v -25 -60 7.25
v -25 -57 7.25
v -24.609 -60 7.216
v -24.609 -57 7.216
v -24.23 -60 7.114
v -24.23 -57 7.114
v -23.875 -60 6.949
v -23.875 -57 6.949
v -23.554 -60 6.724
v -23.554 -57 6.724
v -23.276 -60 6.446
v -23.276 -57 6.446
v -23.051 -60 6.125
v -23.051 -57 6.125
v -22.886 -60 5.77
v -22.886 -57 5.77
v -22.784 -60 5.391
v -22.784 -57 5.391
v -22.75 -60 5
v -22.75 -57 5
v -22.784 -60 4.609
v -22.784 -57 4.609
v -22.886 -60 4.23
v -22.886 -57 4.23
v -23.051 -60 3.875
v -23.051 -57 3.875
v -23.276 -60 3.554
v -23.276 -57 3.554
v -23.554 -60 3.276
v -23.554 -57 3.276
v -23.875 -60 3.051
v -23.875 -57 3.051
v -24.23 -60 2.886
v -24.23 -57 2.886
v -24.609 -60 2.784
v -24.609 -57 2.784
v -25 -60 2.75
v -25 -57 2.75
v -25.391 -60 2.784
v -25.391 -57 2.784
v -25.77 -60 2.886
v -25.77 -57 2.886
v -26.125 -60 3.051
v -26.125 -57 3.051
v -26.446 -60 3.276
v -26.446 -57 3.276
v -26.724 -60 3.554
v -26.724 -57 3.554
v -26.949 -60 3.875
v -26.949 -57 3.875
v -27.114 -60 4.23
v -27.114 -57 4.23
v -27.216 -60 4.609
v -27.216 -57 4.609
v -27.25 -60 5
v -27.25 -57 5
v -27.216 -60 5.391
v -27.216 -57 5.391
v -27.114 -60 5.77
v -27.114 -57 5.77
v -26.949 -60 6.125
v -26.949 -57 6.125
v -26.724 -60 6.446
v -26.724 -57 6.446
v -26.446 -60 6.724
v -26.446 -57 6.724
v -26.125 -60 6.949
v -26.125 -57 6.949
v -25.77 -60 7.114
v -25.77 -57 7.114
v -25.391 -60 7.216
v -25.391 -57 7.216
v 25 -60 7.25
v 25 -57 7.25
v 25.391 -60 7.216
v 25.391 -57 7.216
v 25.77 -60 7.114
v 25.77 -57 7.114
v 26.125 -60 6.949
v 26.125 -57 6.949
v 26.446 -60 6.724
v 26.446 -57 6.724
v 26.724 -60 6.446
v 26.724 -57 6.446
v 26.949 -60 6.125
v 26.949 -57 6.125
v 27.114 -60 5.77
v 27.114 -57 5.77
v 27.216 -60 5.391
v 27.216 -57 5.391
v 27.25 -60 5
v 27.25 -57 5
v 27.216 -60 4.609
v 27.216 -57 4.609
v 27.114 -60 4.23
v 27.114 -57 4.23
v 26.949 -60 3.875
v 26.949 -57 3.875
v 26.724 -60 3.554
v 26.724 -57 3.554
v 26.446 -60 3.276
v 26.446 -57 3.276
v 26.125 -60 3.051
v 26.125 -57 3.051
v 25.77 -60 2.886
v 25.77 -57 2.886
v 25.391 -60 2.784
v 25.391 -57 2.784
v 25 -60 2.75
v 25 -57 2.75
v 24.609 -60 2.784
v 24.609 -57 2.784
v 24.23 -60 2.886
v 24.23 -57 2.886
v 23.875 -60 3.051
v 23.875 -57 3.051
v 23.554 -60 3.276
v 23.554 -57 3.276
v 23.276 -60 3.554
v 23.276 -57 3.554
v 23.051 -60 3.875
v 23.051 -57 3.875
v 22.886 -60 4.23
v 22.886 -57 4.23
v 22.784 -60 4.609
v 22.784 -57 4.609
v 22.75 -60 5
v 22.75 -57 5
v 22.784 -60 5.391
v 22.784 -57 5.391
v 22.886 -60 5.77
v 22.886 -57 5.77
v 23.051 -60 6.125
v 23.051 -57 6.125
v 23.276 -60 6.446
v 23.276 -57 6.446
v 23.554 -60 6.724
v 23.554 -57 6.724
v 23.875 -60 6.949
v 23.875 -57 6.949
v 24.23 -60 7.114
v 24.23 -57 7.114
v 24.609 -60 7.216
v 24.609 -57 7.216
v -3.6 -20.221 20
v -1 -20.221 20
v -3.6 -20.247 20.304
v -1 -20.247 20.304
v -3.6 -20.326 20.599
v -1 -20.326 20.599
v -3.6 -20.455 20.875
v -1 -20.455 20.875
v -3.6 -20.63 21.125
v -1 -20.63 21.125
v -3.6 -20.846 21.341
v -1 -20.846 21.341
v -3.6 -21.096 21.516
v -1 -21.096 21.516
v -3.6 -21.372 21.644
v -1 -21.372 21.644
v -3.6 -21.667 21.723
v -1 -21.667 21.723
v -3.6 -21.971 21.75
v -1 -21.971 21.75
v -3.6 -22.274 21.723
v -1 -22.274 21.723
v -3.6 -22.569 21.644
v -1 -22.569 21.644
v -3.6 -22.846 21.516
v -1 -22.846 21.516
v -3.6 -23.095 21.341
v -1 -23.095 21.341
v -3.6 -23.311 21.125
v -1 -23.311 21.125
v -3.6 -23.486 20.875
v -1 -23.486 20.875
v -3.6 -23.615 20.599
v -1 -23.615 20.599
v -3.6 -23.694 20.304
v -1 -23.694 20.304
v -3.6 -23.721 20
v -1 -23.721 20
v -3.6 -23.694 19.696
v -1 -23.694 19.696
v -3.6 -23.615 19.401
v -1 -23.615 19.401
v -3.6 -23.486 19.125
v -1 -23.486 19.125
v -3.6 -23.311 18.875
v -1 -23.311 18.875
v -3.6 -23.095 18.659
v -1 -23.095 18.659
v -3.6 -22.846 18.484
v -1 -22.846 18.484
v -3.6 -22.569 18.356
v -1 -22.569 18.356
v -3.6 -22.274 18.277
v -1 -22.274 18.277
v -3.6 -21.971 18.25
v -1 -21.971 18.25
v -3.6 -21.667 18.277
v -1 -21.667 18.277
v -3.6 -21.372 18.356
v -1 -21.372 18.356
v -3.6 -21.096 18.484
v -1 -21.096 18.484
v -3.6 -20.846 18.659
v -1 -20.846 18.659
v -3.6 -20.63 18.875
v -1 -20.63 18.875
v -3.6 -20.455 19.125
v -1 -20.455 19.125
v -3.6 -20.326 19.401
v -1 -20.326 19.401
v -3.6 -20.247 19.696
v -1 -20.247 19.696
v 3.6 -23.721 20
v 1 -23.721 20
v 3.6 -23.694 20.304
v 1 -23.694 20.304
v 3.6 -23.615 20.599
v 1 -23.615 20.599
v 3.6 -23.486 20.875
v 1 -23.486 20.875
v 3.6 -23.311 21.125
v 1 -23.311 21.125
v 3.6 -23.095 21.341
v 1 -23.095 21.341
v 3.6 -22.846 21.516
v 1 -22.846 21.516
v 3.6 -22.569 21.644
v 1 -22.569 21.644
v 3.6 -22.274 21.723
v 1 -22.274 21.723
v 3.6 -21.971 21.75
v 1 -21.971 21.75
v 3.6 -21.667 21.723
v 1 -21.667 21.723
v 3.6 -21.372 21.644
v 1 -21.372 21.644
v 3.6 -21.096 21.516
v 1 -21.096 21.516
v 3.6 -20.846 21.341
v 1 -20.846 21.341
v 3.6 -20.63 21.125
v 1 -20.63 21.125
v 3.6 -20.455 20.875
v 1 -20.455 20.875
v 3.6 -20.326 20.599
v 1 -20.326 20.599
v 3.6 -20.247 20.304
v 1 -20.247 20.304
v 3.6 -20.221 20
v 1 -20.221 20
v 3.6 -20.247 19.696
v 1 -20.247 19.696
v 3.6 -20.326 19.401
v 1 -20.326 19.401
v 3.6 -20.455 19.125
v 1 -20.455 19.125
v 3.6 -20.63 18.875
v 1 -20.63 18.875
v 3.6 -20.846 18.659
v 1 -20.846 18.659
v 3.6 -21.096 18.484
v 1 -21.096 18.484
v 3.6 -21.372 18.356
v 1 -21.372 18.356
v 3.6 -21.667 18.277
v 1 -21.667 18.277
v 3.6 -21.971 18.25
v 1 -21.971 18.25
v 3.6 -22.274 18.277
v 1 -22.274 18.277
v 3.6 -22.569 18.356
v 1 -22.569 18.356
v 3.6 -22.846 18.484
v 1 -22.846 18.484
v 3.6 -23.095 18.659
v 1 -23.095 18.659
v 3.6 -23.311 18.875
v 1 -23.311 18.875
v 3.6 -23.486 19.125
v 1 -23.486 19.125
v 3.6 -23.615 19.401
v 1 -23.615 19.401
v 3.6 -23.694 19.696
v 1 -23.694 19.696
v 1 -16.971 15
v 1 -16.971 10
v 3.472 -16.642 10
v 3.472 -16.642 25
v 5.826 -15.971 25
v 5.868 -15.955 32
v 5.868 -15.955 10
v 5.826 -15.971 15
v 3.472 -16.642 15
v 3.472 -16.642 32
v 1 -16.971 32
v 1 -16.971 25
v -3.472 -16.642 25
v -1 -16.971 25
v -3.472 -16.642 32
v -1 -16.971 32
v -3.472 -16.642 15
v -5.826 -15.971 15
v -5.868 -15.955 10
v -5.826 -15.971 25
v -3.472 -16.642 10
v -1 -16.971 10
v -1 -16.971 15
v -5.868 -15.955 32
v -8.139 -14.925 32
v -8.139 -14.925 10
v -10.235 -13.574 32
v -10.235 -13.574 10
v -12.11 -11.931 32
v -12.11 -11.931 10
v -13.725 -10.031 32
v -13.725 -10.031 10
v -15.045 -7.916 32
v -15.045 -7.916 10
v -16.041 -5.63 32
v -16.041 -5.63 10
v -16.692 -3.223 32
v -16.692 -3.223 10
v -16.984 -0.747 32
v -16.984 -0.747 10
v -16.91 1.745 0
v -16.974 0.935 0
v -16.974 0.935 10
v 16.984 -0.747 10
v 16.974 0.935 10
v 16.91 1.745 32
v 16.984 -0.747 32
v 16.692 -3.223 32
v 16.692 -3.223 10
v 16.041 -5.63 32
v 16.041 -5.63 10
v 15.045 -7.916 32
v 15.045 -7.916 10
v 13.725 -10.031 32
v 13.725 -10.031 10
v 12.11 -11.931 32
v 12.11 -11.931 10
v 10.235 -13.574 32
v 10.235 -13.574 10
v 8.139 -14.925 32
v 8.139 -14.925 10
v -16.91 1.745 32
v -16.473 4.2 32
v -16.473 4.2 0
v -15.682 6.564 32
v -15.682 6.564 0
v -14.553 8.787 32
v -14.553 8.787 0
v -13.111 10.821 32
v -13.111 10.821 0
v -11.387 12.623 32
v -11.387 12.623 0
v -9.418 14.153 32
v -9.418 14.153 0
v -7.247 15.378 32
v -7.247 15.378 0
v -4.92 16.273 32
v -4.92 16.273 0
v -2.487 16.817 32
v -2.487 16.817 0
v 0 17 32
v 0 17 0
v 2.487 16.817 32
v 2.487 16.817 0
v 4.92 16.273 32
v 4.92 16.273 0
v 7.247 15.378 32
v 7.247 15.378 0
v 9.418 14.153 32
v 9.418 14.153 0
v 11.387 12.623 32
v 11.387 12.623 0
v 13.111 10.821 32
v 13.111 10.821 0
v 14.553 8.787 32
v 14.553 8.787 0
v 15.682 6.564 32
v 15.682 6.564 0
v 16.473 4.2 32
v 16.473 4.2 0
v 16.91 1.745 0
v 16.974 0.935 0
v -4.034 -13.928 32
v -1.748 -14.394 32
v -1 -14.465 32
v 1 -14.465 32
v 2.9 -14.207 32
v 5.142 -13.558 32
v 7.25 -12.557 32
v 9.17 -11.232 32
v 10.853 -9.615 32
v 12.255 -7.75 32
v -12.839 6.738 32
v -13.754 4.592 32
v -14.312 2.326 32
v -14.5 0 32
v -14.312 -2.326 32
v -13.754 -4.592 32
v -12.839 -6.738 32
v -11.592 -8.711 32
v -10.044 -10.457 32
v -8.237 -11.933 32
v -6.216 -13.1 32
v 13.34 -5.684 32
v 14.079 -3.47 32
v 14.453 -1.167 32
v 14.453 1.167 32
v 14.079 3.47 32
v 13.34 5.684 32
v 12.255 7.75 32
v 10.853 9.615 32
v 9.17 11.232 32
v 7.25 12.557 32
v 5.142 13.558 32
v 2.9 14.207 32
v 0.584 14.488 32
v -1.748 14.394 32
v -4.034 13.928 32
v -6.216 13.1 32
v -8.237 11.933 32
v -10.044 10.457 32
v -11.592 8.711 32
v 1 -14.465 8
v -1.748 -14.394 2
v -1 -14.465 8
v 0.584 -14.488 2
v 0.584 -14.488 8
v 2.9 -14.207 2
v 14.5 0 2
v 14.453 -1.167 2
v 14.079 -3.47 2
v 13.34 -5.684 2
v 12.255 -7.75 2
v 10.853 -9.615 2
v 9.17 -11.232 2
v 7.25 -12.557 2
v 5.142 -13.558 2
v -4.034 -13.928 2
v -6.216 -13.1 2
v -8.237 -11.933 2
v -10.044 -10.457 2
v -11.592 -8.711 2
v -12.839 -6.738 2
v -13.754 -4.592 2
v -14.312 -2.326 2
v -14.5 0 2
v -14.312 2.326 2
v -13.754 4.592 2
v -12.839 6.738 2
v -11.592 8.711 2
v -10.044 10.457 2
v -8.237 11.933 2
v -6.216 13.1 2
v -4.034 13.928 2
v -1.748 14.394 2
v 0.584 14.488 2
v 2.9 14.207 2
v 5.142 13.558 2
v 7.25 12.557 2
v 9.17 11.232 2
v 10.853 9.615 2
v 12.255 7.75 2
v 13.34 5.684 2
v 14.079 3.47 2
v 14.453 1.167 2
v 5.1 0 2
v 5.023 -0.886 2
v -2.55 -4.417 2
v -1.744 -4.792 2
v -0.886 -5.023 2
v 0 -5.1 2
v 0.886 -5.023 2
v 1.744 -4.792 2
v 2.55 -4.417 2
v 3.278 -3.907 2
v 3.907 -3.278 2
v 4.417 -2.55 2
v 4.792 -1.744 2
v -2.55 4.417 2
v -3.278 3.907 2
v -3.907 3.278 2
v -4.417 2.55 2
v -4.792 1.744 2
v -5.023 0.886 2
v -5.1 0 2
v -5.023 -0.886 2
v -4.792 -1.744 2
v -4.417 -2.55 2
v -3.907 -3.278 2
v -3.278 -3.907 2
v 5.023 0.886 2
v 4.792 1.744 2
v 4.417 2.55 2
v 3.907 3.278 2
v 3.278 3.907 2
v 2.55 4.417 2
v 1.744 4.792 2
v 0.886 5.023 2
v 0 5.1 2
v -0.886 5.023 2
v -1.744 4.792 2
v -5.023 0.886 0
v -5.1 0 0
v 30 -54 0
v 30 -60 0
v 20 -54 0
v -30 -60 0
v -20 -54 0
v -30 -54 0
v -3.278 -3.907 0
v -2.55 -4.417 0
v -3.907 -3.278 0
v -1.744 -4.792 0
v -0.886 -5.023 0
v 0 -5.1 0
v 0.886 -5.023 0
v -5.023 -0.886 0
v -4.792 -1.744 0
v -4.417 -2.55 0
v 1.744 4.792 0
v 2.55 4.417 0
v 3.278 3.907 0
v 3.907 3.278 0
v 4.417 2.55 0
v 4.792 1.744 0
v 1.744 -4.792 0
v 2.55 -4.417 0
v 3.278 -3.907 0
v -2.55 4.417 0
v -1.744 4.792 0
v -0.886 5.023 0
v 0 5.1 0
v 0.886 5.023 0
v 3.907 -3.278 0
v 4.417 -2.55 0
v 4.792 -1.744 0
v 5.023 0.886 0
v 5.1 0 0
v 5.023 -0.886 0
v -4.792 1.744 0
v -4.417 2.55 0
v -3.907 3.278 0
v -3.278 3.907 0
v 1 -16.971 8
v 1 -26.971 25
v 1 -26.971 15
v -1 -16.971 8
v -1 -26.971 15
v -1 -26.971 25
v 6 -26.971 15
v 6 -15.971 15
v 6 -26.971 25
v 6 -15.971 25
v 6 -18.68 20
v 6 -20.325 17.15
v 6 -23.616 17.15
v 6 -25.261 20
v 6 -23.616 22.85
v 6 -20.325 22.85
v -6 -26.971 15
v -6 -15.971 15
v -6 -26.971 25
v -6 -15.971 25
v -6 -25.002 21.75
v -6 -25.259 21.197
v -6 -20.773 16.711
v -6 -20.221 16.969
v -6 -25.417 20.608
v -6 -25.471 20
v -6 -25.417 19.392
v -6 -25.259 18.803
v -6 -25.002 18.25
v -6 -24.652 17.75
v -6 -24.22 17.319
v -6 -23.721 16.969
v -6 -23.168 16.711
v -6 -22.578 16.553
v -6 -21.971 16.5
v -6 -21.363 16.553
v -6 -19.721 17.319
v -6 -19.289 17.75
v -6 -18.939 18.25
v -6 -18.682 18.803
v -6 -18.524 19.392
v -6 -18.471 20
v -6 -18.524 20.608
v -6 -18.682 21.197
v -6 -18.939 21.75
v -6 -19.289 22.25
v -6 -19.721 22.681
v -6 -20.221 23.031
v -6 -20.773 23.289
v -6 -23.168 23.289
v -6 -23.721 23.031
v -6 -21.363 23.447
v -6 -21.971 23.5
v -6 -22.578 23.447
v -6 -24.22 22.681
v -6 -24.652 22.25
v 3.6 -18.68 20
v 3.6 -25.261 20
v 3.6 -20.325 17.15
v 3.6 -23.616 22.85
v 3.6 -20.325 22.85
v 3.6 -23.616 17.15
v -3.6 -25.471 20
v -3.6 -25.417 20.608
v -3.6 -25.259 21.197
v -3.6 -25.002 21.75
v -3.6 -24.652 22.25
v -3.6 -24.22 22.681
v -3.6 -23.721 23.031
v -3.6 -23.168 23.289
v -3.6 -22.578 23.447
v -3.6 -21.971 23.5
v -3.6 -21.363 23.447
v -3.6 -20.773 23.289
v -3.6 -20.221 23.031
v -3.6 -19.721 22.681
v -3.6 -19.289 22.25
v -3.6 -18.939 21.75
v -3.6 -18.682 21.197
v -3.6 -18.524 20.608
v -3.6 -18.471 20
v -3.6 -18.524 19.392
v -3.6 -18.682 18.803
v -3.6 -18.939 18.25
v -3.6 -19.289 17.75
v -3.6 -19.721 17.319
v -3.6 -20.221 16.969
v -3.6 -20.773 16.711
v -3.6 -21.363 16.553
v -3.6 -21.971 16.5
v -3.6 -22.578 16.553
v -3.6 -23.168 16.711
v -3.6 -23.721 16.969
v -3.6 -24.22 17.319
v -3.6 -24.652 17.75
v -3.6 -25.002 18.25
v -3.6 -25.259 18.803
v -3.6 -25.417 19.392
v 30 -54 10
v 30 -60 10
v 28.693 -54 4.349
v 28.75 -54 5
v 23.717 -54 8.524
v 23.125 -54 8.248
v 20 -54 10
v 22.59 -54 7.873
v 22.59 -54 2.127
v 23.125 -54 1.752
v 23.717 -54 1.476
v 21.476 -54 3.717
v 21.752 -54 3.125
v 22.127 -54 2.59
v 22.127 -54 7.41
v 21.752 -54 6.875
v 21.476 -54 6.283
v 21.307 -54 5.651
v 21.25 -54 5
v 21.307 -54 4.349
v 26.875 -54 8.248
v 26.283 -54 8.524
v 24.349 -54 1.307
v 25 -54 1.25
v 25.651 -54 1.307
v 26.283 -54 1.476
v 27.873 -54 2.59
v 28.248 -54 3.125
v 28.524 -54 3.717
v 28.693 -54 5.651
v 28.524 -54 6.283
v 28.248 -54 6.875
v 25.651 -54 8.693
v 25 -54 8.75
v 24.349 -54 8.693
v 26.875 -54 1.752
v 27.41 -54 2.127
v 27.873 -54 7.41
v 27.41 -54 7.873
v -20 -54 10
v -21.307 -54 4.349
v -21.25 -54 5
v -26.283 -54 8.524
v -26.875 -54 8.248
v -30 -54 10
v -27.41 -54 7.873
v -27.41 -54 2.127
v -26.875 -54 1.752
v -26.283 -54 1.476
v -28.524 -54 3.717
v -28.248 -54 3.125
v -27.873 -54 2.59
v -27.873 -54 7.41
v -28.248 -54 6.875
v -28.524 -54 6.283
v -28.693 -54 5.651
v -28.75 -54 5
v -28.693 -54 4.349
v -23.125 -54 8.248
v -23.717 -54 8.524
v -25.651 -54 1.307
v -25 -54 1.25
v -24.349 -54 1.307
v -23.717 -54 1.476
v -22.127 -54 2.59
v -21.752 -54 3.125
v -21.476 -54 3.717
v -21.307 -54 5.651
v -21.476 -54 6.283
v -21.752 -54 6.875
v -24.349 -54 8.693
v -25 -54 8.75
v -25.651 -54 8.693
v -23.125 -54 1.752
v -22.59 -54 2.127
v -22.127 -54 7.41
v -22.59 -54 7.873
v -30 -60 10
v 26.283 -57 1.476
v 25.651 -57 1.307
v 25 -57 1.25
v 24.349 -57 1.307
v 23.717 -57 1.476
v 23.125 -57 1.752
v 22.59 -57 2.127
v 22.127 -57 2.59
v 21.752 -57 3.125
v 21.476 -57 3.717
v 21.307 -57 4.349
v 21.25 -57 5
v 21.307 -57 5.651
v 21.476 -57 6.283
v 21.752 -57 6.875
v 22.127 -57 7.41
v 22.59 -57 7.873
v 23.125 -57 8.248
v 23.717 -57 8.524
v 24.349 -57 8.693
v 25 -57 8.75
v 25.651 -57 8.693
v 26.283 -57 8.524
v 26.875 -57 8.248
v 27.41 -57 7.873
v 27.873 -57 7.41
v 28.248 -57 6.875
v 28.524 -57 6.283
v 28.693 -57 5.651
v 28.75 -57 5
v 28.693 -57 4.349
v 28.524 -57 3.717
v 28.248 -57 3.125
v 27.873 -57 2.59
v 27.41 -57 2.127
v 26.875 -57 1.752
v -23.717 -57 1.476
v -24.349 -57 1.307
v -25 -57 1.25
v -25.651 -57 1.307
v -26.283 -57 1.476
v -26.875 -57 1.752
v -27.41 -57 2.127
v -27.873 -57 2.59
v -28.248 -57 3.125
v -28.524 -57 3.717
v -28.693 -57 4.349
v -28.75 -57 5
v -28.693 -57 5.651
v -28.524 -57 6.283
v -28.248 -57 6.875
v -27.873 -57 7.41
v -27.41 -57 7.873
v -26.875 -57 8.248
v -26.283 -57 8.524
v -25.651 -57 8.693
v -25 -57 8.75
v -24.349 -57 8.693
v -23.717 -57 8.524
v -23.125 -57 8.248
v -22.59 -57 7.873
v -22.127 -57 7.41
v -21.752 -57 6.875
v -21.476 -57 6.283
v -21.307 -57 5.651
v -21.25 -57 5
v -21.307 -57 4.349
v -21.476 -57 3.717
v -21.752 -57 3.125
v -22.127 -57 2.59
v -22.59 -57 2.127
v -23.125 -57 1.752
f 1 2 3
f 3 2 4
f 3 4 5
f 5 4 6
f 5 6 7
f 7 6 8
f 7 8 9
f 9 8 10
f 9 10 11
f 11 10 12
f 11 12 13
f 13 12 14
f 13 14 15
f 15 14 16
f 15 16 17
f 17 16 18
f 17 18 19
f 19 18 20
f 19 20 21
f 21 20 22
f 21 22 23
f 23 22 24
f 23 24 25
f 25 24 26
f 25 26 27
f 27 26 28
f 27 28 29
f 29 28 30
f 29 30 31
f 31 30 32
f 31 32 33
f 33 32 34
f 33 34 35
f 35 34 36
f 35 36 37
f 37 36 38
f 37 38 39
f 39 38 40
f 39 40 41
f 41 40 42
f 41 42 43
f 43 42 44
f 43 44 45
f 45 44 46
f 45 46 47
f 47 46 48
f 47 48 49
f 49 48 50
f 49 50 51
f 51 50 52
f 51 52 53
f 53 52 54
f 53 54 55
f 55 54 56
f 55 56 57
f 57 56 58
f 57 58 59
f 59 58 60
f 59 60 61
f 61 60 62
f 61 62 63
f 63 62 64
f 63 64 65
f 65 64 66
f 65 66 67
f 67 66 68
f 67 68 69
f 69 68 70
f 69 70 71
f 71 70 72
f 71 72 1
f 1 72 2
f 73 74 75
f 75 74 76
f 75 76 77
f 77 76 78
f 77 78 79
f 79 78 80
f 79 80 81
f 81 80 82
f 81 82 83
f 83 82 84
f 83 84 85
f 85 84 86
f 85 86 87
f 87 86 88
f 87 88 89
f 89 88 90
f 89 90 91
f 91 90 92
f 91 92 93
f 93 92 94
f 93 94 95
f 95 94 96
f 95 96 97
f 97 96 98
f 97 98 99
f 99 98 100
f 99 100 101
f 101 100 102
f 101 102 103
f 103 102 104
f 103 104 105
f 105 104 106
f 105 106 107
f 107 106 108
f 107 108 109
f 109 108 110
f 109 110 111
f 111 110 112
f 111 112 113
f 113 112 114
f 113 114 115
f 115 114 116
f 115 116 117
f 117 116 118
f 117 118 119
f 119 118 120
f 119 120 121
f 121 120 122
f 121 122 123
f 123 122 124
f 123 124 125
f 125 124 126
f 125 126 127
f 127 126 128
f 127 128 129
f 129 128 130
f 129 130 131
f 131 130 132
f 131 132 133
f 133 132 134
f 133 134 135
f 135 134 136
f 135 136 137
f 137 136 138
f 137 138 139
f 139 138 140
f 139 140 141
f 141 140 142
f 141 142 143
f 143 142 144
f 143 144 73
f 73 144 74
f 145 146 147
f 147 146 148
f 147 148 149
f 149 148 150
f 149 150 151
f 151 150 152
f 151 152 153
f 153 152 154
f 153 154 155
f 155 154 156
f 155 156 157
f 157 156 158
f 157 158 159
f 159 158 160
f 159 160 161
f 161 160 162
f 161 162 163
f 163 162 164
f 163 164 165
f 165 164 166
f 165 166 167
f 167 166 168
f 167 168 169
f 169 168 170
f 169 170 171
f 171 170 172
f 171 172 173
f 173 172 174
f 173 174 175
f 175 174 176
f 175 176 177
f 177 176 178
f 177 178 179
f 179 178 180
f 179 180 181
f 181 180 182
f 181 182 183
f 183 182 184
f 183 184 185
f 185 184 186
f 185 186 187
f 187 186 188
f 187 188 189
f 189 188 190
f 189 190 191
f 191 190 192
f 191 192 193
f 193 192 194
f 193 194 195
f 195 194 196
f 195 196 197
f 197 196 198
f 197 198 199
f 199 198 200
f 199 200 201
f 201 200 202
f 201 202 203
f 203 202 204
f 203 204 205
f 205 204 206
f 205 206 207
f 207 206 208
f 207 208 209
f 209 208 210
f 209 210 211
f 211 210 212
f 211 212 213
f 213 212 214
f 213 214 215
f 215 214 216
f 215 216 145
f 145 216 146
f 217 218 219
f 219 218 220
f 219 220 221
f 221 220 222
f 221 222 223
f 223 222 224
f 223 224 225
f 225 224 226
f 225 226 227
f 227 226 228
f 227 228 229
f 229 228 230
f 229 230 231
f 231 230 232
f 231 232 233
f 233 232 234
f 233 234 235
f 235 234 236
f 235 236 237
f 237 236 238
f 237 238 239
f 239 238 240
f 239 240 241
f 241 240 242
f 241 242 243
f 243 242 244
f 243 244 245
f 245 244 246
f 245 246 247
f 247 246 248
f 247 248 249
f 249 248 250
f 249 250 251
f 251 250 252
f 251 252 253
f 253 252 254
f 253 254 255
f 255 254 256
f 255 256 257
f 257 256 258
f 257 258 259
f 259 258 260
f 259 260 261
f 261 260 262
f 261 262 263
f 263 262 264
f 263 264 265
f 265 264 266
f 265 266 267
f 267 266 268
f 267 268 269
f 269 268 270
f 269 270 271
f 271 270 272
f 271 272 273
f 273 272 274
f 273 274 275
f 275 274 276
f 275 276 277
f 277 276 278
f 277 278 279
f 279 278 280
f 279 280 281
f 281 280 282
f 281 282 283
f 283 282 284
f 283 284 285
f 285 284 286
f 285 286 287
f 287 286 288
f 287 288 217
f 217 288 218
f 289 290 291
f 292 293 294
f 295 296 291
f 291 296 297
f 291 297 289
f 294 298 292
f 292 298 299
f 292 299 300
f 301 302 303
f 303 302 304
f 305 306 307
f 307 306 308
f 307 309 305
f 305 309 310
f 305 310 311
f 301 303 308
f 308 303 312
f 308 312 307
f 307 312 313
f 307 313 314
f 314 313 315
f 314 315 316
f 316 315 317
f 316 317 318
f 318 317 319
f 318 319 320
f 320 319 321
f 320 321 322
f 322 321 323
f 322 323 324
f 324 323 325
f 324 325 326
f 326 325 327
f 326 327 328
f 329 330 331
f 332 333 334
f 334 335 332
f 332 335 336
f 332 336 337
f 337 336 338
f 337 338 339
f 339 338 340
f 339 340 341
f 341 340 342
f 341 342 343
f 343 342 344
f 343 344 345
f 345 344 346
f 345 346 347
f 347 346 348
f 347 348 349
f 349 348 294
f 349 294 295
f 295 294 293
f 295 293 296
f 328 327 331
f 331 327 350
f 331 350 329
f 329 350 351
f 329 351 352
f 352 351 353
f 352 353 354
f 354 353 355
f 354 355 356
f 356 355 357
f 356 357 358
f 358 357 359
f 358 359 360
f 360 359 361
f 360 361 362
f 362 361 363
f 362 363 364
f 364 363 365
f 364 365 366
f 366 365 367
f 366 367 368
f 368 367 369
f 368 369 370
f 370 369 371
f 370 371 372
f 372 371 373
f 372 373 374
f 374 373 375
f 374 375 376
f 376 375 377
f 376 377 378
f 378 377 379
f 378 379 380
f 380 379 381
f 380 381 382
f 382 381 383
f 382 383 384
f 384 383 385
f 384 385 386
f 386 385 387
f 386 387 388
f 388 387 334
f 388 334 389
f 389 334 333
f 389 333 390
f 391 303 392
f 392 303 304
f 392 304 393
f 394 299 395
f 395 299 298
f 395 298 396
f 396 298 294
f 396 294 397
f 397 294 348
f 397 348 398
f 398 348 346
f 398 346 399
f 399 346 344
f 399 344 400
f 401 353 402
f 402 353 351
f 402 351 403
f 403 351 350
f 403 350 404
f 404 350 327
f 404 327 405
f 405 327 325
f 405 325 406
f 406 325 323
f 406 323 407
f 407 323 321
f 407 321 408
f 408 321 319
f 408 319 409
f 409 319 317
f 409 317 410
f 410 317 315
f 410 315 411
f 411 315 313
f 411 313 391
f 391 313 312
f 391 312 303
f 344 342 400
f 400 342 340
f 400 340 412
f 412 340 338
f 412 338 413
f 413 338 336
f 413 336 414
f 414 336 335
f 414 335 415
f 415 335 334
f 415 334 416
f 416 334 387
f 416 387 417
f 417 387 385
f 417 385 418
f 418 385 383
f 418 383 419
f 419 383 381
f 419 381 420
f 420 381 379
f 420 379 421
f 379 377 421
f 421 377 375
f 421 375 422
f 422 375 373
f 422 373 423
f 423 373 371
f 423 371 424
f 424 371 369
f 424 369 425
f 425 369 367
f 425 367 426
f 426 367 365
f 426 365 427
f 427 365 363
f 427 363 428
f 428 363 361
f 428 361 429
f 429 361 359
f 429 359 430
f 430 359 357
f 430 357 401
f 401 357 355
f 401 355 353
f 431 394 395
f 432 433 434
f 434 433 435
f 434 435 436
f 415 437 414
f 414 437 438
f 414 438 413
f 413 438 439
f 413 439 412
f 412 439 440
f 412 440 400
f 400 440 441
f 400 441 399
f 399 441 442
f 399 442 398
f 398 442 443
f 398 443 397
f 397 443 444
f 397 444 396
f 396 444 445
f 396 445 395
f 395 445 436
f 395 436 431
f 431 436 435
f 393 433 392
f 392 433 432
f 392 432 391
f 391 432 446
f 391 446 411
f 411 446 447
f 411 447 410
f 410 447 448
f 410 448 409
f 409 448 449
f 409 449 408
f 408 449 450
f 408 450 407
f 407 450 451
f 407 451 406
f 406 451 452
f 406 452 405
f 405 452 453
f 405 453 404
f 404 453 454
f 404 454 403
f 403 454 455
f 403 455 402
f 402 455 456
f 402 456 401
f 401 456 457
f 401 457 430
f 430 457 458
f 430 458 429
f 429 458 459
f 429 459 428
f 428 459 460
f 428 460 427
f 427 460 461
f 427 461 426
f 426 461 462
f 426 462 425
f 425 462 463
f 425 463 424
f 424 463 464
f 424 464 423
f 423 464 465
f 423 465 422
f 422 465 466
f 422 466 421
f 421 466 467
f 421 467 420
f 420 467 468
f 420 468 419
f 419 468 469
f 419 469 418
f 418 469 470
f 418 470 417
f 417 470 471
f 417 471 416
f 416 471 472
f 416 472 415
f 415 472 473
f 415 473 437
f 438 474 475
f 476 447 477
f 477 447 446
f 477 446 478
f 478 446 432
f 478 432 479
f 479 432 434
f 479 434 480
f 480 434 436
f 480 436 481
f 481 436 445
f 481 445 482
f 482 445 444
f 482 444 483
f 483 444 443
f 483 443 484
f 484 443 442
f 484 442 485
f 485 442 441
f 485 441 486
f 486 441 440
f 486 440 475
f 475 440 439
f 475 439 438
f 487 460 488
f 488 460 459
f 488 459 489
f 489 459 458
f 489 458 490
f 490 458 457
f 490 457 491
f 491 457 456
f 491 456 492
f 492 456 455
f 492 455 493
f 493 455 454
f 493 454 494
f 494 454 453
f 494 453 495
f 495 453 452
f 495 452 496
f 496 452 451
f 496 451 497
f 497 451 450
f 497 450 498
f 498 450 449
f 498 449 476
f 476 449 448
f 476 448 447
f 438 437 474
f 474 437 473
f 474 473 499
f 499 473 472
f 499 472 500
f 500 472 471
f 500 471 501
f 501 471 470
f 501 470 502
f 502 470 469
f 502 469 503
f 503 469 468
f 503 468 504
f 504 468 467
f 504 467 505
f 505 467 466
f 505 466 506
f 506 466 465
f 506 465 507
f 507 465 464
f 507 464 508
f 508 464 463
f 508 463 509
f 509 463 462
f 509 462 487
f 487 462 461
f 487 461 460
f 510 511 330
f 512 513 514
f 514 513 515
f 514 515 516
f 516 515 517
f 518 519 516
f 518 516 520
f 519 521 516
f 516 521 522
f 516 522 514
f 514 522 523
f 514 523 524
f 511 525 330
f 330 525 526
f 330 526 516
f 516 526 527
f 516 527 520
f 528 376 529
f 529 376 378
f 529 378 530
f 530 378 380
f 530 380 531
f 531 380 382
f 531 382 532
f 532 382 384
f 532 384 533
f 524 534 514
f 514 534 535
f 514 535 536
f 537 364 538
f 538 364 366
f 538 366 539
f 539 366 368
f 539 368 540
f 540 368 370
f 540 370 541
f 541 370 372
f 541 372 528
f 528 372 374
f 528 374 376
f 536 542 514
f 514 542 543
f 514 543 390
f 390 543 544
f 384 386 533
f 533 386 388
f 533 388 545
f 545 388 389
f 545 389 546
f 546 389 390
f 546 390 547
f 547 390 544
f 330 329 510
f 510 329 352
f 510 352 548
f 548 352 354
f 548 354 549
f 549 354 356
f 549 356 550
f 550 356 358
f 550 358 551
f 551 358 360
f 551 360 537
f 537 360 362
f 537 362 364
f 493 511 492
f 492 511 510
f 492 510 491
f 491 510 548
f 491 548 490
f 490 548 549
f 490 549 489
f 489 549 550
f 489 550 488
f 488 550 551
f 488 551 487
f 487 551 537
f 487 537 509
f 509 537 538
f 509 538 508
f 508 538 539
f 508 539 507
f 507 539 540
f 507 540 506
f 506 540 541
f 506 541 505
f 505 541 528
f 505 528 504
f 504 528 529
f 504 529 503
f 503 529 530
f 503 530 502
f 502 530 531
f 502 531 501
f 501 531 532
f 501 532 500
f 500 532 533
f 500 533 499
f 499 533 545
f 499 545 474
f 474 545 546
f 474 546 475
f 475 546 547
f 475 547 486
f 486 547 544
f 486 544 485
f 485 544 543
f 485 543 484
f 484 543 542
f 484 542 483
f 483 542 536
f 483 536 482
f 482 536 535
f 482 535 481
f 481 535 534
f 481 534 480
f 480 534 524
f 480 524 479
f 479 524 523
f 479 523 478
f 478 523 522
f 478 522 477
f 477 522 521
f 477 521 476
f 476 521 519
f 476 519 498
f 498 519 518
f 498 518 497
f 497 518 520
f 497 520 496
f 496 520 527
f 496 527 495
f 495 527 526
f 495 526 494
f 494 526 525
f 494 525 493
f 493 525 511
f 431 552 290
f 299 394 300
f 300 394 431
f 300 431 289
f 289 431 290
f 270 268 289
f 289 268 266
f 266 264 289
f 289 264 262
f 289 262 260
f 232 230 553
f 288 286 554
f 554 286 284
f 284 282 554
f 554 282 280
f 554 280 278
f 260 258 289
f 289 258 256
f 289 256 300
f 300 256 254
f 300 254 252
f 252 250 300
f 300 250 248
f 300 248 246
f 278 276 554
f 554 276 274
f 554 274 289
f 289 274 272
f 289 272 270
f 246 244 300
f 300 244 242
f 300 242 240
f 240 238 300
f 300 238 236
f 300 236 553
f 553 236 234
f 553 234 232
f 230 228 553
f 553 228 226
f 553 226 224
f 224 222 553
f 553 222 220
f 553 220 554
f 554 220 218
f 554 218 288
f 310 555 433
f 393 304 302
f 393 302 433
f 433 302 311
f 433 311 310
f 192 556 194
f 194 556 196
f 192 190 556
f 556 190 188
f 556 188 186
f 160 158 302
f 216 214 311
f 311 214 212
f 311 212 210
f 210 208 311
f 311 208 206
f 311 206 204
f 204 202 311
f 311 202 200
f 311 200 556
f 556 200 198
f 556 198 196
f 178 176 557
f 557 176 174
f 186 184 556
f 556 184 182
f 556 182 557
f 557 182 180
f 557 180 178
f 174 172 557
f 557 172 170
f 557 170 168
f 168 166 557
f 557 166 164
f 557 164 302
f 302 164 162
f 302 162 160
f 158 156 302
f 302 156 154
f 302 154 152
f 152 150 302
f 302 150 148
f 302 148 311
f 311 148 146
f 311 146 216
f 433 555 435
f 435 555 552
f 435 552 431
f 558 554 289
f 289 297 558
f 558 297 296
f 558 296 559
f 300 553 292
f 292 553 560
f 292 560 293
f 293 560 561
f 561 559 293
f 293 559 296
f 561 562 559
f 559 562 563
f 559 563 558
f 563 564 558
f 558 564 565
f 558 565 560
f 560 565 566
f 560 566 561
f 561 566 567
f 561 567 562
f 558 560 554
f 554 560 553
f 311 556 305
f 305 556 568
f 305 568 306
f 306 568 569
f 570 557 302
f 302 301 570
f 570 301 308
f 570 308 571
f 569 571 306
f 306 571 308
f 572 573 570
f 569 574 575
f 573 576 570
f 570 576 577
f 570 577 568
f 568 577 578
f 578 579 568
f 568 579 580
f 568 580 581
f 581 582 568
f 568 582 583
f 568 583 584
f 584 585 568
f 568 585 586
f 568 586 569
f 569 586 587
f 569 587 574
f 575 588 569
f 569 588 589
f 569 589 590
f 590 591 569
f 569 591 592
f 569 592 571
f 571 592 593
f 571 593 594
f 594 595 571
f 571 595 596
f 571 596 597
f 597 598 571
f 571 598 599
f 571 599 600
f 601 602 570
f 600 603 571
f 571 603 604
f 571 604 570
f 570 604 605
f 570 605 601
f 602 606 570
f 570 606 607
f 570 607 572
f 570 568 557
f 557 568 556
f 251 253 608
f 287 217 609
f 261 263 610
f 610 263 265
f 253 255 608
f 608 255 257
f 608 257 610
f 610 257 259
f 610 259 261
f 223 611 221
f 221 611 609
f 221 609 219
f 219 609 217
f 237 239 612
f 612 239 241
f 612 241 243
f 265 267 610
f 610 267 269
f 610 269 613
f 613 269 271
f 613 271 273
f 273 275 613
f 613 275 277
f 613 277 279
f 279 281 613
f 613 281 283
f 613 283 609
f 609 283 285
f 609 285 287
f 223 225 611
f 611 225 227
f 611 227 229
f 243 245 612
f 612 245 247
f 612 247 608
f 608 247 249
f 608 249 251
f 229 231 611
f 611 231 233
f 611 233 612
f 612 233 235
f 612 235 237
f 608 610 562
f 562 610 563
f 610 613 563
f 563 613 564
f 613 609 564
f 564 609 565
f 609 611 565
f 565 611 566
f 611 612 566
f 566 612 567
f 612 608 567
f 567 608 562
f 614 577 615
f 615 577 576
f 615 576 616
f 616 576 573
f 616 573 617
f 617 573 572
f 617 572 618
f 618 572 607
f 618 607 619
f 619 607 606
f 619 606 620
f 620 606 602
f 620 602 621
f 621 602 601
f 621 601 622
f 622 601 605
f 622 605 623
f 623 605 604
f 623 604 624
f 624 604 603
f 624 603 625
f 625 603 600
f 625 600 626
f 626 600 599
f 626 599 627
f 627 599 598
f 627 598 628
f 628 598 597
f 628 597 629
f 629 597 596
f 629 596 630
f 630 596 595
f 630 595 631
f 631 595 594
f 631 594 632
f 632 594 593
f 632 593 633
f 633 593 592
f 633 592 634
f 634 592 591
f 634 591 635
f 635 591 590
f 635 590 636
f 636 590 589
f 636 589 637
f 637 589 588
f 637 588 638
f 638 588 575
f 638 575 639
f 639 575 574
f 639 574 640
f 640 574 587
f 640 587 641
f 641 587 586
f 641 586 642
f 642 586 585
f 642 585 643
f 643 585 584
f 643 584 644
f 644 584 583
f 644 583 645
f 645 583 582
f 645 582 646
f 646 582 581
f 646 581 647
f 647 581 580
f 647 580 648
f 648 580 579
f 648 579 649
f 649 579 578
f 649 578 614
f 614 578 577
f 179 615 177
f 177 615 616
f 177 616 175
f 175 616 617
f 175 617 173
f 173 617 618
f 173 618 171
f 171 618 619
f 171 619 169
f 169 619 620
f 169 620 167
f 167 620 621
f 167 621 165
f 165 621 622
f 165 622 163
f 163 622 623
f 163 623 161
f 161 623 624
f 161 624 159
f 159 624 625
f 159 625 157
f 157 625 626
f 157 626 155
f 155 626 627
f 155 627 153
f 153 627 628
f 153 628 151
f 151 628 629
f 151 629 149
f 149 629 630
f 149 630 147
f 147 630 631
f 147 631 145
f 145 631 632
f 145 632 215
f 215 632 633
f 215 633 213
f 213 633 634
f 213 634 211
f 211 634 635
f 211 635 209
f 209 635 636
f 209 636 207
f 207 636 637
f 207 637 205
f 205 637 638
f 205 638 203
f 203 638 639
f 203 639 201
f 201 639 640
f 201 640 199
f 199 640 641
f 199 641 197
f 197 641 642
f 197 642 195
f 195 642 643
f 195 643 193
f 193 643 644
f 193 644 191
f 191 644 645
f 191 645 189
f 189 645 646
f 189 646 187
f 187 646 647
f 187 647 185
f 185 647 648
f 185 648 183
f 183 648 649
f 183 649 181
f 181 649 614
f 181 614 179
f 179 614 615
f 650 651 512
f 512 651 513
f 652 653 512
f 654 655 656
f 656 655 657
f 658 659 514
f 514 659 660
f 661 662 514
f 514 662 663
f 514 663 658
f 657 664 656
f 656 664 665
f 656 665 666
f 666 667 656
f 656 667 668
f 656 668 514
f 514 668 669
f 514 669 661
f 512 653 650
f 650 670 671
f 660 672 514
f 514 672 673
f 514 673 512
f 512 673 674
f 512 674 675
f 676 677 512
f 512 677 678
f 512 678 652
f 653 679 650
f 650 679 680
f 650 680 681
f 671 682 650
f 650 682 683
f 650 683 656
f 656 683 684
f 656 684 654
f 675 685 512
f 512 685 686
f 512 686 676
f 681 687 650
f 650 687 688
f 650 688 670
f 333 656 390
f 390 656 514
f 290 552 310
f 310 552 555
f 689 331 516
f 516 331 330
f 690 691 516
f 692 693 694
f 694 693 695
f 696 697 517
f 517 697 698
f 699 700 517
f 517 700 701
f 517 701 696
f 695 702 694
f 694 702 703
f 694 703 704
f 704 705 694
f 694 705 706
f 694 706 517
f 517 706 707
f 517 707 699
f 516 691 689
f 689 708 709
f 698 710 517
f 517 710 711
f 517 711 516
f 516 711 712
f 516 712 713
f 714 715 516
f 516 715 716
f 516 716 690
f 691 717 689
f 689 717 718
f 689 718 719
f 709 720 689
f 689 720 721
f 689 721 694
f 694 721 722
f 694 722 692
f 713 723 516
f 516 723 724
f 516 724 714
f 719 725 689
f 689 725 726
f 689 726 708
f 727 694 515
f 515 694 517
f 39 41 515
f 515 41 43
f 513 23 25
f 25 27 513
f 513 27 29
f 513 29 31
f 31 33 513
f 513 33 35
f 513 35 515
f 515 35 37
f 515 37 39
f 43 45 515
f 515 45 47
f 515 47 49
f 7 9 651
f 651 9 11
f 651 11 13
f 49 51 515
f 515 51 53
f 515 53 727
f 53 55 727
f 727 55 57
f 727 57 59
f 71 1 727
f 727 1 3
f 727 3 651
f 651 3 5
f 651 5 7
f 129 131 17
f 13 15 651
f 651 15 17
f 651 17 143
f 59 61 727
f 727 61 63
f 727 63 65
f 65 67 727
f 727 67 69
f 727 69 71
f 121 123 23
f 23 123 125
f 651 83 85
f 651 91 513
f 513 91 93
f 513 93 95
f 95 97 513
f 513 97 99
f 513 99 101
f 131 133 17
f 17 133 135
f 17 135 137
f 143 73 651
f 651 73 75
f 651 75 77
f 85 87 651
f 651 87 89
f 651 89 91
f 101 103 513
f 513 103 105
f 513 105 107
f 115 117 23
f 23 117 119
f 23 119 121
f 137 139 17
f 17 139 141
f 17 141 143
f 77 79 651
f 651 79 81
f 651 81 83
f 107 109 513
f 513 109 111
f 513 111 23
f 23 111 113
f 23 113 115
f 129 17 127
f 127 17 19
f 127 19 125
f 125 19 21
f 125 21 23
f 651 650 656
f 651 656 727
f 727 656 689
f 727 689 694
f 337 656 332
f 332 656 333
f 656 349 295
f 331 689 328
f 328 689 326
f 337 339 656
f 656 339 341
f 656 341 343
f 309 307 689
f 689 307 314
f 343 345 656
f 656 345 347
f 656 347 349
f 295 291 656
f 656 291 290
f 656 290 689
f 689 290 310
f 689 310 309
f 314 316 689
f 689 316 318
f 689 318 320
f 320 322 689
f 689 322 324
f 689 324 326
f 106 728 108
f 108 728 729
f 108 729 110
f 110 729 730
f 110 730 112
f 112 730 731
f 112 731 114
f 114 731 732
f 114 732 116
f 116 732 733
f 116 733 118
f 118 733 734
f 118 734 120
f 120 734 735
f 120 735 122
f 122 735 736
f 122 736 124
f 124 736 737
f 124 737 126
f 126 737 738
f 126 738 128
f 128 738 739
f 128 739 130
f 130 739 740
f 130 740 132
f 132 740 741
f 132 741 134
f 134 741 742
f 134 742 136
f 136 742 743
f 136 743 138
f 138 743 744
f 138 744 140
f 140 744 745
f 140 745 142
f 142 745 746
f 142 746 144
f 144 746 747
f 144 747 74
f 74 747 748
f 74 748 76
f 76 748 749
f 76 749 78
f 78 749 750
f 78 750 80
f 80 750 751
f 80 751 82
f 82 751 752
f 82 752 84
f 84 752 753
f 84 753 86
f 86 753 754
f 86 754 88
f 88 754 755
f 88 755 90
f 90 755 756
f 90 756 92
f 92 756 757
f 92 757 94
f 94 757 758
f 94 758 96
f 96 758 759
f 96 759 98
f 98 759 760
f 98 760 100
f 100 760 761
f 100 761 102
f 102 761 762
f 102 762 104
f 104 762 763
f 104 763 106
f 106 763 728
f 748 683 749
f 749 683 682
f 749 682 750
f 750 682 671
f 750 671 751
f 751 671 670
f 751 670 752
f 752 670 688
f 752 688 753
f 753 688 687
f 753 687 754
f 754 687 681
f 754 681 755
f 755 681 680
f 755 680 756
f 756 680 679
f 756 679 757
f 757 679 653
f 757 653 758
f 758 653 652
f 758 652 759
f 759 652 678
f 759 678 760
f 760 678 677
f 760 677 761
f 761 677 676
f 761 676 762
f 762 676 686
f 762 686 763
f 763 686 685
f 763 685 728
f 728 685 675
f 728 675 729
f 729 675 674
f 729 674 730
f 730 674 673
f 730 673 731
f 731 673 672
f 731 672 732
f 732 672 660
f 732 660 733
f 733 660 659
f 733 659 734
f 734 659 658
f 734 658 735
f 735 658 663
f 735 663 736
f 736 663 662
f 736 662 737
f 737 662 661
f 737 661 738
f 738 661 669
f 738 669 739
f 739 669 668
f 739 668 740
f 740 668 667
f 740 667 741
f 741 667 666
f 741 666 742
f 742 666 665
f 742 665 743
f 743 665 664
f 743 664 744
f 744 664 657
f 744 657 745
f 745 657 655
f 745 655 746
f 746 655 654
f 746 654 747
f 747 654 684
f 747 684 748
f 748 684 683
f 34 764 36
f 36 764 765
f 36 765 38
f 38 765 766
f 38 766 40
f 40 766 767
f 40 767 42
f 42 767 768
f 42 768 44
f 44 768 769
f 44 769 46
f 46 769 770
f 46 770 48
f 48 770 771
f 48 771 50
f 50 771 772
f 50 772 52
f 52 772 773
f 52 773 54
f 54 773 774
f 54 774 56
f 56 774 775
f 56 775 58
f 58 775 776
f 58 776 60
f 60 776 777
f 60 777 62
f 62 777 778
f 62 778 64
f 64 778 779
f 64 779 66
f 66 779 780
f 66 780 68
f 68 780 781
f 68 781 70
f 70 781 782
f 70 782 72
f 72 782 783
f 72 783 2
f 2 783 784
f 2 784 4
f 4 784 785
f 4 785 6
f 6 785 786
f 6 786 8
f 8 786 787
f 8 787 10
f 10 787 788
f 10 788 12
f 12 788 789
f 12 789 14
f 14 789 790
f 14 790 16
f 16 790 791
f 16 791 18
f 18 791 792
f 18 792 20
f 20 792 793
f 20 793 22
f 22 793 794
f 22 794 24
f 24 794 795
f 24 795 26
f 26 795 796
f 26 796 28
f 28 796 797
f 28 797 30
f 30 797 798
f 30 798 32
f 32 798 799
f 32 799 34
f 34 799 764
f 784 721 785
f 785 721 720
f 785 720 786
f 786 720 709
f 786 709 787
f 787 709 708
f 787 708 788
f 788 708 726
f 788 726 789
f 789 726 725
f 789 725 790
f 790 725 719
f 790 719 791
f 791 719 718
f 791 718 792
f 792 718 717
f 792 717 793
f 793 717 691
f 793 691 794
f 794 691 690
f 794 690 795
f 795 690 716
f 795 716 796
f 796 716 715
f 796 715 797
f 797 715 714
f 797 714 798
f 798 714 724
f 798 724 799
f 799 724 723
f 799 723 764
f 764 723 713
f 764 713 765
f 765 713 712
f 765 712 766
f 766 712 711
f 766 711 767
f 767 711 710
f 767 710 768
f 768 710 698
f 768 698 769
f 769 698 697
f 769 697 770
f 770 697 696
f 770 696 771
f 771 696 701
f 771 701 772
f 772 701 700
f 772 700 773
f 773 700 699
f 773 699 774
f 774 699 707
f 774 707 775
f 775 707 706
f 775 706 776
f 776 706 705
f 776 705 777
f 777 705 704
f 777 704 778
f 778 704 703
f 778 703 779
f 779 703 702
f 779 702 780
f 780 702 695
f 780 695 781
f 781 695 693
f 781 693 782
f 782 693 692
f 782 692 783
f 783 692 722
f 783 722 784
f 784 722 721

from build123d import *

# Parameters (mm, degrees)
SCHIZZO1_R                   = 17
SCHIZZO1_R_2                 = 5.1
ESTRUSIONE_ESTRUSIONE1_DEPTH = 2
SCHIZZO2_R                   = 17
SCHIZZO2_R_2                 = 14.5
ESTRUSIONE_ESTRUSIONE2_DEPTH = 30
TAGLIO_ESTRUSIONE1_START     = -24
TAGLIO_ESTRUSIONE1_DEPTH     = 24
SCHIZZO4_W                   = 10
SCHIZZO4_H                   = 10
SCHIZZO4_R                   = 1.75
ESTRUSIONE_ESTRUSIONE4_DEPTH = 5
SCHIZZO6_W                   = 5
SCHIZZO6_H                   = 10
ESTRUSIONE_ESTRUSIONE5_DEPTH = 1
TAGLIO_ESTRUSIONE2_DEPTH     = 2.4
SCHIZZO8_R                   = 3.5
TAGLIO_ESTRUSIONE3_DEPTH     = 2.4
ESTRUSIONE_ESTRUSIONE6_DEPTH = 10
SCHIZZO10_R                  = 2.25
TAGLIO_ESTRUSIONE4_DEPTH     = 6
SCHIZZO11_R                  = 3.75
TAGLIO_ESTRUSIONE5_DEPTH     = 3


with BuildPart() as part:
    # Schizzo1 → Estrusione-Estrusione1 (new body)
    with BuildSketch(Plane.XY):
        Circle(SCHIZZO1_R)
        Circle(SCHIZZO1_R_2, mode=Mode.SUBTRACT)
    extrude(amount=ESTRUSIONE_ESTRUSIONE1_DEPTH)

    # Schizzo2 → Estrusione-Estrusione2 (add)
    with BuildSketch(Plane.XY.offset(2)):
        Circle(SCHIZZO2_R)
        Circle(SCHIZZO2_R_2, mode=Mode.SUBTRACT)
    extrude(amount=ESTRUSIONE_ESTRUSIONE2_DEPTH)

    # Schizzo3 → Taglio-Estrusione1 (cut)
    with BuildSketch(Plane.XY.offset(32).offset(TAGLIO_ESTRUSIONE1_START)):
        with BuildLine():
            Line((0, -17), (0, -14.5))
            ThreePointArc((0, -14.5), (-0.500297885, -14.491366465), (-1, -14.465476141))
            Line((-1, -14.465476141), (-1, -16.970562748))
            ThreePointArc((-1, -16.970562748), (-0.500216591, -16.992639094), (0, -17))
        make_face()
        with BuildLine():
            ThreePointArc((1, -14.465476141), (0.500297885, -14.491366465), (0, -14.5))
            Line((0, -14.5), (0, -17))
            ThreePointArc((0, -17), (0.500216591, -16.992639094), (1, -16.970562748))
            Line((1, -16.970562748), (1, -14.465476141))
        make_face()
    extrude(amount=TAGLIO_ESTRUSIONE1_DEPTH, mode=Mode.SUBTRACT)



with BuildPart() as body_2:
    # Schizzo4 → Estrusione-Estrusione4 (new body)
    with BuildSketch(Plane.ZY.offset(-1)):
        with Locations((20, -21.970562748)):
            Rectangle(SCHIZZO4_W, SCHIZZO4_H)
        with Locations(Location((20, -21.970562748, 0), (0, 0, 270))):
            Circle(SCHIZZO4_R, mode=Mode.SUBTRACT)
    estrusione_estrusione4 = extrude(amount=-ESTRUSIONE_ESTRUSIONE4_DEPTH)


with BuildPart() as part_1:
    add(part.part)

    add(body_2.part)  # Estrusione-Estrusione5 merges body 2
    # Schizzo6 → Estrusione-Estrusione5 (add)
    with BuildSketch(Plane(origin=(0, -16.970562748, 0), x_dir=(1, 0, 0), z_dir=(0, 1, 0))):
        with Locations((3.5, -20)):
            Rectangle(SCHIZZO6_W, SCHIZZO6_H)
    estrusione_estrusione5 = extrude(amount=ESTRUSIONE_ESTRUSIONE5_DEPTH)

    # Specchia4: Estrusione-Estrusione5 across plane
    add(estrusione_estrusione5.mirror(Plane(origin=(0, 0, 0), x_dir=(0, 0, 1), z_dir=(1, 0, 0))))

    # Specchia5: Estrusione-Estrusione4 across plane
    add(estrusione_estrusione4.mirror(Plane(origin=(0, 0, 0), x_dir=(0, 0, 1), z_dir=(1, 0, 0))))

    # Schizzo7 → Taglio-Estrusione2 (cut)
    with BuildSketch(Plane(origin=(6, 0, 0), x_dir=(0, 0, -1), z_dir=(1, 0, 0))):
        Polygon((-20, -18.679666214), (-22.85, -20.325114481), (-22.85, -23.616011016), (-20, -25.261459283), (-17.15, -23.616011016), (-17.15, -20.325114481), align=None)
    extrude(amount=-TAGLIO_ESTRUSIONE2_DEPTH, mode=Mode.SUBTRACT)

    # Schizzo8 → Taglio-Estrusione3 (cut)
    with BuildSketch(Plane.ZY.offset(6)):
        with Locations(Location((20, -21.970562748, 0), (0, 0, 270))):
            Circle(SCHIZZO8_R)
    extrude(amount=-TAGLIO_ESTRUSIONE3_DEPTH, mode=Mode.SUBTRACT)

    # Schizzo9 → Estrusione-Estrusione6 (add)
    with BuildSketch(Plane(origin=(0, 0, 0), x_dir=(-1, 0, 0), z_dir=(0, 0, -1))):
        with BuildLine():
            Line((-30, -60), (30, -60))
            Line((30, -60), (30, -54))
            Line((30, -54), (20, -54))
            Line((20, -54), (16.974272663, 0.934915801))
            ThreePointArc((16.974272663, 0.934915801), (0, -17), (-16.974272663, 0.934915801))
            Line((-16.974272663, 0.934915801), (-20, -54))
            Line((-20, -54), (-30, -54))
            Line((-30, -54), (-30, -60))
        make_face()
    extrude(amount=-ESTRUSIONE_ESTRUSIONE6_DEPTH)

    # Schizzo10 → Taglio-Estrusione4 (cut)
    with BuildSketch(Plane(origin=(0, -54, 0), x_dir=(1, 0, 0), z_dir=(0, 1, 0))):
        with Locations(Location((25, -5, 0), (0, 0, 270))):
            Circle(SCHIZZO10_R)
        with Locations(Location((-25, -5, 0), (0, 0, 270))):
            Circle(SCHIZZO10_R)
    extrude(amount=-TAGLIO_ESTRUSIONE4_DEPTH, mode=Mode.SUBTRACT)

    # Schizzo11 → Taglio-Estrusione5 (cut)
    with BuildSketch(Plane(origin=(0, -54, 0), x_dir=(1, 0, 0), z_dir=(0, 1, 0))):
        with Locations(Location((-25, -5, 0), (0, 0, 270))):
            Circle(SCHIZZO11_R)
        with Locations(Location((25, -5, 0), (0, 0, 270))):
            Circle(SCHIZZO11_R)
    extrude(amount=-TAGLIO_ESTRUSIONE5_DEPTH, mode=Mode.SUBTRACT)


solid = part_1.part
